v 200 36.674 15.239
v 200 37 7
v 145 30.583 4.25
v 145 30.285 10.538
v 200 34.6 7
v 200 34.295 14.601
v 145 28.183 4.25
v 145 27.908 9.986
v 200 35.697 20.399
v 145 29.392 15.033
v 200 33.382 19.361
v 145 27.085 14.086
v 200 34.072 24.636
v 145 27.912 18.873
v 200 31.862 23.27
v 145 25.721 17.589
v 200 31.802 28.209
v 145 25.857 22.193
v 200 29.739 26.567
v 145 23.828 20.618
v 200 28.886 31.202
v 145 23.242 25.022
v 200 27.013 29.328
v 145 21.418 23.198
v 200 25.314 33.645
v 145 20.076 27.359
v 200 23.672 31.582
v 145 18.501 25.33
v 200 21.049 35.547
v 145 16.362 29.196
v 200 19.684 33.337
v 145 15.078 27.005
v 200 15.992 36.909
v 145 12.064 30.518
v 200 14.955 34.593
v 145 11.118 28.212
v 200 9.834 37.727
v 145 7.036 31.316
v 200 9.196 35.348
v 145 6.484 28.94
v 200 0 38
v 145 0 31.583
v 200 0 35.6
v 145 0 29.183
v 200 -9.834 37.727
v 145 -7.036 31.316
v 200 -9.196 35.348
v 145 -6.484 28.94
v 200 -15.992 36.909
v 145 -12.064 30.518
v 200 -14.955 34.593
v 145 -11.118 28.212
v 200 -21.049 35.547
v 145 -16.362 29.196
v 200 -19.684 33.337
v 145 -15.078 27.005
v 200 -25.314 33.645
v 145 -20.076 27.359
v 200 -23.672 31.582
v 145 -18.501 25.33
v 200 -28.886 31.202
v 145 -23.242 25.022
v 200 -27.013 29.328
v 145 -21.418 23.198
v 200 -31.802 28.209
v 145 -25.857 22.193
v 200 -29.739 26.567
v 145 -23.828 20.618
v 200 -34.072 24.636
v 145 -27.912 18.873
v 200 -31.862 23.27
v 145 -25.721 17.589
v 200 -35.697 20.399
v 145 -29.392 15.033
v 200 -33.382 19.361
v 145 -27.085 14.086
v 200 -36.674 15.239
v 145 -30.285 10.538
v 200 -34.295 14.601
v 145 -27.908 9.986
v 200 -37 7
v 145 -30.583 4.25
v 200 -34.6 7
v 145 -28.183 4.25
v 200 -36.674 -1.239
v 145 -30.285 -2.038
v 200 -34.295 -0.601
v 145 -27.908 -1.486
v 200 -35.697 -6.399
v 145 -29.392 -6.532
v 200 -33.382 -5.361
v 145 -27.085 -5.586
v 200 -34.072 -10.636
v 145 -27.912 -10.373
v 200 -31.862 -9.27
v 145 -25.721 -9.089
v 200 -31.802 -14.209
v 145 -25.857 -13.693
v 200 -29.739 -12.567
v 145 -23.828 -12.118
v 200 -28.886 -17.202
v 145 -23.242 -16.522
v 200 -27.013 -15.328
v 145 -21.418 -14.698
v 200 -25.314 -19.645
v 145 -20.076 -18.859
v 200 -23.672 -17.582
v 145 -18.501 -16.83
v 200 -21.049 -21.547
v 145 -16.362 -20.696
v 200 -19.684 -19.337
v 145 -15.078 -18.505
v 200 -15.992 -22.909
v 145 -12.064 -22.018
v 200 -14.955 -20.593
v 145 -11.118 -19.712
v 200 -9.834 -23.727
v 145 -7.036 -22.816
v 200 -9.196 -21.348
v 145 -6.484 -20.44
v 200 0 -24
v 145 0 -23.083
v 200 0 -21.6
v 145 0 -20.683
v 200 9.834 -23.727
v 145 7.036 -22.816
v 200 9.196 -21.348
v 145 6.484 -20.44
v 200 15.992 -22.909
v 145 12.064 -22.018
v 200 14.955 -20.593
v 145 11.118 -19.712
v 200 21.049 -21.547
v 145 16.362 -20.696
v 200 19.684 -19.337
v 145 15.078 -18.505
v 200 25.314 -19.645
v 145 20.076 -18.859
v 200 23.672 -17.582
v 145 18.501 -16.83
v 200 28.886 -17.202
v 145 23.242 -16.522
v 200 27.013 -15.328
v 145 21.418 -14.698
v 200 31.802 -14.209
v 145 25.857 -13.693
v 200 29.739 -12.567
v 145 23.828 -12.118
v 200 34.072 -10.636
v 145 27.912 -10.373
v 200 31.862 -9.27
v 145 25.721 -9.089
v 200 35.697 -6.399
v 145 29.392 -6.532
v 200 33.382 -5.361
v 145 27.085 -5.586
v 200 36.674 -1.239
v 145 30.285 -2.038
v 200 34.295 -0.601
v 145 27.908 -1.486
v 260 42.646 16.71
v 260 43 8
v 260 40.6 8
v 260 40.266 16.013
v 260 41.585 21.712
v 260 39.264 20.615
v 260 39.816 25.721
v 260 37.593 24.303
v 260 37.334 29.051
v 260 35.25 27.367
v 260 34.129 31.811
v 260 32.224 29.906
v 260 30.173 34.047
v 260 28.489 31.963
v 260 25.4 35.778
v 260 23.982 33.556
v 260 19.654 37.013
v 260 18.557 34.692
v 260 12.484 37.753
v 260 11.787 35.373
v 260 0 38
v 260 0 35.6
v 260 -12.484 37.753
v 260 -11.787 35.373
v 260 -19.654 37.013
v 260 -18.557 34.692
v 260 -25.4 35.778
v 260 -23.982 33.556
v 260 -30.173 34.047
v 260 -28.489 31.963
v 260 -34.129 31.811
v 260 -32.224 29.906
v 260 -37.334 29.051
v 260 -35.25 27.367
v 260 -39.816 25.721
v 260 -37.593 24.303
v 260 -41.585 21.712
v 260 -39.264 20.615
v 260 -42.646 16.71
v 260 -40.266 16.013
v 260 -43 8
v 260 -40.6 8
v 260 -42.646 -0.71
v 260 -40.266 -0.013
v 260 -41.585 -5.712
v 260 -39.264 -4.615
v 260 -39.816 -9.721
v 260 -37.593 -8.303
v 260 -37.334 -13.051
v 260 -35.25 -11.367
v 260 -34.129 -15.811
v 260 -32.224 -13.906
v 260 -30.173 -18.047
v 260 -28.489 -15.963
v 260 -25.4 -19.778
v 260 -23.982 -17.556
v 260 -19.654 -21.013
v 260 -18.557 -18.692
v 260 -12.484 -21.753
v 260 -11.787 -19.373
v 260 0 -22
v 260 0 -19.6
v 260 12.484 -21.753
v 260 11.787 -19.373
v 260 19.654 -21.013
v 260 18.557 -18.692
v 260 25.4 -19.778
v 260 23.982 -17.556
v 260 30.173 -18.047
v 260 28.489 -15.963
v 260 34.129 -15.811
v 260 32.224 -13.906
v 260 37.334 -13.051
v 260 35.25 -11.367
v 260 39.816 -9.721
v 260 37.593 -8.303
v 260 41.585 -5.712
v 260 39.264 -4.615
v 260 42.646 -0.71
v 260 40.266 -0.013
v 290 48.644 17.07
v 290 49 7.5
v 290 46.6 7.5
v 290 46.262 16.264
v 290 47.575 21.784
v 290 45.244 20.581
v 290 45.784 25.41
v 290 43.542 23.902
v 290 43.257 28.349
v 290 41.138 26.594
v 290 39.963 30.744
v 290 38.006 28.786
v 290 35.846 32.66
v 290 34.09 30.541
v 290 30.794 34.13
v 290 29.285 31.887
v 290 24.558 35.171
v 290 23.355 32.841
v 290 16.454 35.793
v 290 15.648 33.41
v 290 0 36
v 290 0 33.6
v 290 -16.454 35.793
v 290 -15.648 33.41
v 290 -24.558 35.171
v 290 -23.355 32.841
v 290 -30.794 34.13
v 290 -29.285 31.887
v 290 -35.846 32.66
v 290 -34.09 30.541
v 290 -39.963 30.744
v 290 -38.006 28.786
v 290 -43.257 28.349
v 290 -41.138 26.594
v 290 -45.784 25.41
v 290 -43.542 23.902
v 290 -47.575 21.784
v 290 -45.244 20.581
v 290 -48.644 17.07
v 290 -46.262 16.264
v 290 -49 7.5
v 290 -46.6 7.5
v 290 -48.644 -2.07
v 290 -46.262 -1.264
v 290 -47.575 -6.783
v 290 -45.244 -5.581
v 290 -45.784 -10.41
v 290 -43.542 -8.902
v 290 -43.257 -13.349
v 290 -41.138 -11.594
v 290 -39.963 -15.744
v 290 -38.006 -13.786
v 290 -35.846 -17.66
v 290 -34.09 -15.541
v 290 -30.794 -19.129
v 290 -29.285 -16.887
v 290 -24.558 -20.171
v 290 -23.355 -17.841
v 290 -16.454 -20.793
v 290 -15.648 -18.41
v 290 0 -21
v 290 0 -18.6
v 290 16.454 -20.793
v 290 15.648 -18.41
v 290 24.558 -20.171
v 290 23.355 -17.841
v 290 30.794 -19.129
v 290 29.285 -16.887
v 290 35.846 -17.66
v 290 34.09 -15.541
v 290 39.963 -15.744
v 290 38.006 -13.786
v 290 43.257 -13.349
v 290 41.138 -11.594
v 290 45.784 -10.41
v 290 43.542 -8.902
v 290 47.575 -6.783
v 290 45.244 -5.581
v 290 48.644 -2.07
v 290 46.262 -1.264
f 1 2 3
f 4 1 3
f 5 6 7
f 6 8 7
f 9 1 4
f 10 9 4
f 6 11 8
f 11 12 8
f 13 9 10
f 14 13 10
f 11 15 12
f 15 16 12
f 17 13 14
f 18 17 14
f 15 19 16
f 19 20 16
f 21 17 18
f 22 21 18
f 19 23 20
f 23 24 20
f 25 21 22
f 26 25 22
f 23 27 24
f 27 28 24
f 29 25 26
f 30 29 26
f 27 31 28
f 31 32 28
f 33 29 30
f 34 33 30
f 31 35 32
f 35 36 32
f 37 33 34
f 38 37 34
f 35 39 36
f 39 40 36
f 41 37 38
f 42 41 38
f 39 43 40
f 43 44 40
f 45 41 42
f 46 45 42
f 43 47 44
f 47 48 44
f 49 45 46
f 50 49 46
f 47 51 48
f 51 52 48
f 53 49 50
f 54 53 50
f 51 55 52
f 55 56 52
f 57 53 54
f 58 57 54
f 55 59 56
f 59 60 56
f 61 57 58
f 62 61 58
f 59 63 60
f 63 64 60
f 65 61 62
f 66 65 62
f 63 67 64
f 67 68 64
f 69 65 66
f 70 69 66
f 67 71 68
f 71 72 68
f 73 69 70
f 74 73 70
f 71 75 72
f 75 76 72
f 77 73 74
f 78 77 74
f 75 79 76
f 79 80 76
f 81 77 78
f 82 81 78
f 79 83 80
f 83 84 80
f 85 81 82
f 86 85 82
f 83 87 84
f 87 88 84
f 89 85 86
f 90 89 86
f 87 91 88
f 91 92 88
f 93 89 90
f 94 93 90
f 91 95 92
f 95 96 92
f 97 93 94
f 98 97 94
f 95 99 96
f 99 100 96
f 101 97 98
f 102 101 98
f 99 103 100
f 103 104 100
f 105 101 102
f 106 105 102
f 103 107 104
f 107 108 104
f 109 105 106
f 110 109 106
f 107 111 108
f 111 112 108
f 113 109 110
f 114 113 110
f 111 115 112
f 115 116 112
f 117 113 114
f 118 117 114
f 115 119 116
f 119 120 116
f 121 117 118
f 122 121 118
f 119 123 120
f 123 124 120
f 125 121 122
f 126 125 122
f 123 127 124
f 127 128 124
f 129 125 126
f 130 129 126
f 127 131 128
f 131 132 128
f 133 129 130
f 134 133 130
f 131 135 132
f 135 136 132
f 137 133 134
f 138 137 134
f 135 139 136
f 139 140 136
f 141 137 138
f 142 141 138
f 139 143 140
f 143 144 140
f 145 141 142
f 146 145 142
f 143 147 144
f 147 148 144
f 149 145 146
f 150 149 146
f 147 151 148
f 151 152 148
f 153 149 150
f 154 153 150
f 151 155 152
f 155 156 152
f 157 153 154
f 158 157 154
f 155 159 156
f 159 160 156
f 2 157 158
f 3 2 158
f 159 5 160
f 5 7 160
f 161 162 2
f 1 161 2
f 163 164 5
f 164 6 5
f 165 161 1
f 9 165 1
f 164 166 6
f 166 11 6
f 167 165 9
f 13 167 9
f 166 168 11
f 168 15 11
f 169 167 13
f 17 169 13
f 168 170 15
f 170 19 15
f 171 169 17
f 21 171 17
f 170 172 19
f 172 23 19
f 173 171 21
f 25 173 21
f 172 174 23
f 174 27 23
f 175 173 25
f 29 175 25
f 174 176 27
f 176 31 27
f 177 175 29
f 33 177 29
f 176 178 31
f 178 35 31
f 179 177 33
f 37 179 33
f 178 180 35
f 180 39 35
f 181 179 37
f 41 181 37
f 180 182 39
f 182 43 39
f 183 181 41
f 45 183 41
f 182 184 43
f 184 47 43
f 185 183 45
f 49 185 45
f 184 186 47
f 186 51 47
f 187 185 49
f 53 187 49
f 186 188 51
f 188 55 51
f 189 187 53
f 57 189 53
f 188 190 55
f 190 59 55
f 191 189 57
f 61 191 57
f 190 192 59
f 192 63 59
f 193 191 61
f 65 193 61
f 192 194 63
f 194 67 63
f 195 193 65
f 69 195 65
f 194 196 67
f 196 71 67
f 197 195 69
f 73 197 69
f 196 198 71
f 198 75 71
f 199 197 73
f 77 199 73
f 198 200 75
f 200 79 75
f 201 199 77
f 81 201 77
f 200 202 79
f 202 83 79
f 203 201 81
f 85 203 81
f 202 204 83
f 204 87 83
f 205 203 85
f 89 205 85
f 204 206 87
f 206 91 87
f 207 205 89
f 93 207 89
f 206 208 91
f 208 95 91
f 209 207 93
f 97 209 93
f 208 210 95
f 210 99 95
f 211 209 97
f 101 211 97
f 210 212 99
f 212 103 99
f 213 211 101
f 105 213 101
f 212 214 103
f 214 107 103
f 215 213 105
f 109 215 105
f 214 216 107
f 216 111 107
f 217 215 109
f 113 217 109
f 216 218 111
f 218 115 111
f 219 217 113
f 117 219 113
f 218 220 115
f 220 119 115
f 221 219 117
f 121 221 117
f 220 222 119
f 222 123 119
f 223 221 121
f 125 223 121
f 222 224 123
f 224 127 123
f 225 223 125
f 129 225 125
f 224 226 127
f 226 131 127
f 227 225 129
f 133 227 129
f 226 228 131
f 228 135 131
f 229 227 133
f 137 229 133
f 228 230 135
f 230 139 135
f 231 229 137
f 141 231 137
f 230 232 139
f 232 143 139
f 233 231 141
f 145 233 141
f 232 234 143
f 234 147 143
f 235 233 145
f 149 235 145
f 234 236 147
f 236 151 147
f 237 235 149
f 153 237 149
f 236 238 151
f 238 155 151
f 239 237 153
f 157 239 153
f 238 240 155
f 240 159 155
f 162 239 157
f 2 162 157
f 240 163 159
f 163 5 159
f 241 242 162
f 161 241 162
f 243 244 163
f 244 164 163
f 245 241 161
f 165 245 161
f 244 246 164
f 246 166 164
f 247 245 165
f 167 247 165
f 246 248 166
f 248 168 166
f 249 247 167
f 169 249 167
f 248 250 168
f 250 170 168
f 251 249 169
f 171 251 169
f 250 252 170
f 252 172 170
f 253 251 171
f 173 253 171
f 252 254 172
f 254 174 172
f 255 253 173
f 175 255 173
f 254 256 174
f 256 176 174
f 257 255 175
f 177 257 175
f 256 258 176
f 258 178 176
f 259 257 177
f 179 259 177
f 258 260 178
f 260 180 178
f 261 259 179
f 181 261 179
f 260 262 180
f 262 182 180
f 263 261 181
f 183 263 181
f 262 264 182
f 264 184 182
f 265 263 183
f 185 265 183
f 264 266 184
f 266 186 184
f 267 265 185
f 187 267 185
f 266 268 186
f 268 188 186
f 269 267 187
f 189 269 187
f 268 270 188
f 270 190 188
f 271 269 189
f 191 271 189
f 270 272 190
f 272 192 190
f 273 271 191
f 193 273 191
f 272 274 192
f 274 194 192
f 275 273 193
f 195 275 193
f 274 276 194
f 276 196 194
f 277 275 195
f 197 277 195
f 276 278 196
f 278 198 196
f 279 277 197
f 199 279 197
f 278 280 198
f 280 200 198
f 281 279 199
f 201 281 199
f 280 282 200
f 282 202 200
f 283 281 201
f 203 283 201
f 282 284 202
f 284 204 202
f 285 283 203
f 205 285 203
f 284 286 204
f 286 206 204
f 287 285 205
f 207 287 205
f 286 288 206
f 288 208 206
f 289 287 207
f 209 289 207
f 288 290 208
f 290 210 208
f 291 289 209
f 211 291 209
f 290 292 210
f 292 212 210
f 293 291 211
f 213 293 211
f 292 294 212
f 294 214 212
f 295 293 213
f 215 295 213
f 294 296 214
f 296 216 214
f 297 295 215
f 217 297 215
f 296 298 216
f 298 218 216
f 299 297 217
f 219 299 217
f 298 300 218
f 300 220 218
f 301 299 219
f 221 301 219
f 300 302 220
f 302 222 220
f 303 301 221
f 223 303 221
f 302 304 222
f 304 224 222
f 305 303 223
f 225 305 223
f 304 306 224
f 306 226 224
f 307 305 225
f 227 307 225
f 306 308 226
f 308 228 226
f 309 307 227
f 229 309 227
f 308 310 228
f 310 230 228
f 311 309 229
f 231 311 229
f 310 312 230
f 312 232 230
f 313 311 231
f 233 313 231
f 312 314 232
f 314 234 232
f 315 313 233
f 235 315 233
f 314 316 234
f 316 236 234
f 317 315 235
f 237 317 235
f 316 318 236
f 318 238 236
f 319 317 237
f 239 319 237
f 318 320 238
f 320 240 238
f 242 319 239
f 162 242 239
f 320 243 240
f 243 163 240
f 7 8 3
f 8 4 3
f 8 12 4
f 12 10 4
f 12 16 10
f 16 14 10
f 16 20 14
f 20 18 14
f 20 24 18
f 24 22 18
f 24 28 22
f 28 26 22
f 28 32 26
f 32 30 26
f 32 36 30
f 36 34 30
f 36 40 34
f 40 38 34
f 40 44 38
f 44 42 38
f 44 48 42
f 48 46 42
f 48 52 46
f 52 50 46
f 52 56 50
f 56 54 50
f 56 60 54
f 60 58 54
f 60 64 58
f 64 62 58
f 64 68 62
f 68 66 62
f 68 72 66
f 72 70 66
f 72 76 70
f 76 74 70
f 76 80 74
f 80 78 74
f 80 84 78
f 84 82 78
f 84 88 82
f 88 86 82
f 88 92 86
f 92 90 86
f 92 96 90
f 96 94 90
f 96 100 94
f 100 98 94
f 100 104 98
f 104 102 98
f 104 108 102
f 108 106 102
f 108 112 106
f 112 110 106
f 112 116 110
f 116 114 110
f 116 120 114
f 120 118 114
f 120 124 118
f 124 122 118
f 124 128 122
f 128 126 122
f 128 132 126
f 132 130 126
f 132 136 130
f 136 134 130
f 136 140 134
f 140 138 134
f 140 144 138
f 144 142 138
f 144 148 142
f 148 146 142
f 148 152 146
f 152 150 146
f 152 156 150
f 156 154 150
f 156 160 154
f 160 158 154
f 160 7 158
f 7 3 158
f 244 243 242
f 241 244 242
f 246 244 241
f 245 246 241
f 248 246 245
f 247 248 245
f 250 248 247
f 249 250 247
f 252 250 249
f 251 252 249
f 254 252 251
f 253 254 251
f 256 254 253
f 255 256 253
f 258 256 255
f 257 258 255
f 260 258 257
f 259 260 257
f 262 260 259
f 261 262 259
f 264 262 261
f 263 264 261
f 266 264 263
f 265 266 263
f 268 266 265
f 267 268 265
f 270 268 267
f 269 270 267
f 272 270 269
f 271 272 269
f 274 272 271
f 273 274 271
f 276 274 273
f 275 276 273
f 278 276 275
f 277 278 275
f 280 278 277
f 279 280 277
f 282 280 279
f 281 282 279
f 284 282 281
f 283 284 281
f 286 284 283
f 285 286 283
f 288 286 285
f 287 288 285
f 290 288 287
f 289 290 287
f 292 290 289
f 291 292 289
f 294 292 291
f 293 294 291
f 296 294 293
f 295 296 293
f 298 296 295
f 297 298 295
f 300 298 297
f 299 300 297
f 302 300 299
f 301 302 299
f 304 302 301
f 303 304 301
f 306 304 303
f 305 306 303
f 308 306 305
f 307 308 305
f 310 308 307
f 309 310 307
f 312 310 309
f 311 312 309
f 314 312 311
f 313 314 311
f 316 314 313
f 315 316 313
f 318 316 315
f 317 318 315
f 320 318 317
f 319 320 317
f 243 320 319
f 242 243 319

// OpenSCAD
polyhedron(points=[[145.0, 30.583333, 4.25], [145.0, 30.284707, 10.538399], [145.0, 29.391551, 15.032469], [145.0, 27.911714, 18.873336], [145.0, 25.85711, 22.193019], [145.0, 23.241546, 25.021736], [145.0, 20.076488, 27.359352], [145.0, 16.362087, 29.195619], [145.0, 12.064531, 30.518198], [145.0, 7.036105, 31.316441], [145.0, 0.0, 31.583333], [145.0, -7.036105, 31.316441], [145.0, -12.064531, 30.518198], [145.0, -16.362087, 29.195619], [145.0, -20.076488, 27.359352], [145.0, -23.241546, 25.021736], [145.0, -25.85711, 22.193019], [145.0, -27.911714, 18.873336], [145.0, -29.391551, 15.032469], [145.0, -30.284707, 10.538399], [145.0, -30.583333, 4.25], [145.0, -30.284707, -2.038399], [145.0, -29.391551, -6.532469], [145.0, -27.911714, -10.373336], [145.0, -25.85711, -13.693019], [145.0, -23.241546, -16.521736], [145.0, -20.076488, -18.859352], [145.0, -16.362087, -20.695619], [145.0, -12.064531, -22.018198], [145.0, -7.036105, -22.816441], [145.0, -0.0, -23.083333], [145.0, 7.036105, -22.816441], [145.0, 12.064531, -22.018198], [145.0, 16.362087, -20.695619], [145.0, 20.076488, -18.859352], [145.0, 23.241546, -16.521736], [145.0, 25.85711, -13.693019], [145.0, 27.911714, -10.373336], [145.0, 29.391551, -6.532469], [145.0, 30.284707, -2.038399], [145.0, 28.183333, 4.25], [145.0, 27.908141, 9.986247], [145.0, 27.085075, 14.085716], [145.0, 25.721367, 17.589336], [145.0, 23.827996, 20.617534], [145.0, 21.417686, 23.197876], [145.0, 18.501003, 25.330238], [145.0, 15.078086, 27.005272], [145.0, 11.117778, 28.211722], [145.0, 6.483953, 28.939875], [145.0, 0.0, 29.183333], [145.0, -6.483953, 28.939875], [145.0, -11.117778, 28.211722], [145.0, -15.078086, 27.005272], [145.0, -18.501003, 25.330238], [145.0, -21.417686, 23.197876], [145.0, -23.827996, 20.617534], [145.0, -25.721367, 17.589336], [145.0, -27.085075, 14.085716], [145.0, -27.908141, 9.986247], [145.0, -28.183333, 4.25], [145.0, -27.908141, -1.486247], [145.0, -27.085075, -5.585716], [145.0, -25.721367, -9.089336], [145.0, -23.827996, -12.117534], [145.0, -21.417686, -14.697876], [145.0, -18.501003, -16.830238], [145.0, -15.078086, -18.505272], [145.0, -11.117778, -19.711722], [145.0, -6.483953, -20.439875], [145.0, -0.0, -20.683333], [145.0, 6.483953, -20.439875], [145.0, 11.117778, -19.711722], [145.0, 15.078086, -18.505272], [145.0, 18.501003, -16.830238], [145.0, 21.417686, -14.697876], [145.0, 23.827996, -12.117534], [145.0, 25.721367, -9.089336], [145.0, 27.085075, -5.585716], [145.0, 27.908141, -1.486247], [200.0, 37.0, 7.0], [200.0, 36.674045, 15.239197], [200.0, 35.697254, 20.398722], [200.0, 34.072371, 24.635797], [200.0, 31.802201, 28.208888], [200.0, 28.88624, 31.201985], [200.0, 25.313834, 33.645088], [200.0, 21.049177, 35.547122], [200.0, 15.992023, 36.90851], [200.0, 9.83388, 37.726903], [200.0, 0.0, 38.0], [200.0, -9.83388, 37.726903], [200.0, -15.992023, 36.90851], [200.0, -21.049177, 35.547122], [200.0, -25.313834, 33.645088], [200.0, -28.88624, 31.201985], [200.0, -31.802201, 28.208888], [200.0, -34.072371, 24.635797], [200.0, -35.697254, 20.398722], [200.0, -36.674045, 15.239197], [200.0, -37.0, 7.0], [200.0, -36.674045, -1.239197], [200.0, -35.697254, -6.398722], [200.0, -34.072371, -10.635797], [200.0, -31.802201, -14.208888], [200.0, -28.88624, -17.201985], [200.0, -25.313834, -19.645088], [200.0, -21.049177, -21.547122], [200.0, -15.992023, -22.90851], [200.0, -9.83388, -23.726903], [200.0, -0.0, -24.0], [200.0, 9.83388, -23.726903], [200.0, 15.992023, -22.90851], [200.0, 21.049177, -21.547122], [200.0, 25.313834, -19.645088], [200.0, 28.88624, -17.201985], [200.0, 31.802201, -14.208888], [200.0, 34.072371, -10.635797], [200.0, 35.697254, -6.398722], [200.0, 36.674045, -1.239197], [200.0, 34.6, 7.0], [200.0, 34.295188, 14.601323], [200.0, 33.381757, 19.361402], [200.0, 31.862271, 23.270445], [200.0, 29.739356, 26.56691], [200.0, 27.012538, 29.328283], [200.0, 23.671856, 31.582242], [200.0, 19.683825, 33.337022], [200.0, 14.954703, 34.593013], [200.0, 9.196007, 35.348046], [200.0, 0.0, 35.6], [200.0, -9.196007, 35.348046], [200.0, -14.954703, 34.593013], [200.0, -19.683825, 33.337022], [200.0, -23.671856, 31.582242], [200.0, -27.012538, 29.328283], [200.0, -29.739356, 26.56691], [200.0, -31.862271, 23.270445], [200.0, -33.381757, 19.361402], [200.0, -34.295188, 14.601323], [200.0, -34.6, 7.0], [200.0, -34.295188, -0.601323], [200.0, -33.381757, -5.361402], [200.0, -31.862271, -9.270445], [200.0, -29.739356, -12.56691], [200.0, -27.012538, -15.328283], [200.0, -23.671856, -17.582242], [200.0, -19.683825, -19.337022], [200.0, -14.954703, -20.593013], [200.0, -9.196007, -21.348046], [200.0, -0.0, -21.6], [200.0, 9.196007, -21.348046], [200.0, 14.954703, -20.593013], [200.0, 19.683825, -19.337022], [200.0, 23.671856, -17.582242], [200.0, 27.012538, -15.328283], [200.0, 29.739356, -12.56691], [200.0, 31.862271, -9.270445], [200.0, 33.381757, -5.361402], [200.0, 34.295188, -0.601323], [260.0, 43.0, 8.0], [260.0, 42.646338, 16.709827], [260.0, 41.585252, 21.712274], [260.0, 39.815824, 25.7209], [260.0, 37.334203, 29.050724], [260.0, 34.129123, 31.811016], [260.0, 30.172705, 34.047118], [260.0, 25.399956, 35.778482], [260.0, 19.65426, 37.012967], [260.0, 12.484086, 37.753259], [260.0, 0.0, 38.0], [260.0, -12.484086, 37.753259], [260.0, -19.65426, 37.012967], [260.0, -25.399956, 35.778482], [260.0, -30.172705, 34.047118], [260.0, -34.129123, 31.811016], [260.0, -37.334203, 29.050724], [260.0, -39.815824, 25.7209], [260.0, -41.585252, 21.712274], [260.0, -42.646338, 16.709827], [260.0, -43.0, 8.0], [260.0, -42.646338, -0.709827], [260.0, -41.585252, -5.712274], [260.0, -39.815824, -9.7209], [260.0, -37.334203, -13.050724], [260.0, -34.129123, -15.811016], [260.0, -30.172705, -18.047118], [260.0, -25.399956, -19.778482], [260.0, -19.65426, -21.012967], [260.0, -12.484086, -21.753259], [260.0, -0.0, -22.0], [260.0, 12.484086, -21.753259], [260.0, 19.65426, -21.012967], [260.0, 25.399956, -19.778482], [260.0, 30.172705, -18.047118], [260.0, 34.129123, -15.811016], [260.0, 37.334203, -13.050724], [260.0, 39.815824, -9.7209], [260.0, 41.585252, -5.712274], [260.0, 42.646338, -0.709827], [260.0, 40.6, 8.0], [260.0, 40.266077, 16.013041], [260.0, 39.264215, 20.615293], [260.0, 37.593546, 24.303228], [260.0, 35.250434, 27.366666], [260.0, 32.224241, 29.906135], [260.0, 28.488647, 31.963349], [260.0, 23.982284, 33.556204], [260.0, 18.557278, 34.691929], [260.0, 11.7873, 35.372998], [260.0, 0.0, 35.6], [260.0, -11.7873, 35.372998], [260.0, -18.557278, 34.691929], [260.0, -23.982284, 33.556204], [260.0, -28.488647, 31.963349], [260.0, -32.224241, 29.906135], [260.0, -35.250434, 27.366666], [260.0, -37.593546, 24.303228], [260.0, -39.264215, 20.615293], [260.0, -40.266077, 16.013041], [260.0, -40.6, 8.0], [260.0, -40.266077, -0.013041], [260.0, -39.264215, -4.615293], [260.0, -37.593546, -8.303228], [260.0, -35.250434, -11.366666], [260.0, -32.224241, -13.906135], [260.0, -28.488647, -15.963349], [260.0, -23.982284, -17.556204], [260.0, -18.557278, -18.691929], [260.0, -11.7873, -19.372998], [260.0, -0.0, -19.6], [260.0, 11.7873, -19.372998], [260.0, 18.557278, -18.691929], [260.0, 23.982284, -17.556204], [260.0, 28.488647, -15.963349], [260.0, 32.224241, -13.906135], [260.0, 35.250434, -11.366666], [260.0, 37.593546, -8.303228], [260.0, 39.264215, -4.615293], [260.0, 40.266077, -0.013041], [290.0, 49.0, 7.5], [290.0, 48.64423, 17.070239], [290.0, 47.574723, 21.783495], [290.0, 45.784054, 25.410498], [290.0, 43.256713, 28.349284], [290.0, 39.962978, 30.743773], [290.0, 35.846137, 32.659517], [290.0, 30.793488, 34.129501], [290.0, 24.557588, 35.171013], [290.0, 16.454094, 35.793072], [290.0, 0.0, 36.0], [290.0, -16.454094, 35.793072], [290.0, -24.557588, 35.171013], [290.0, -30.793488, 34.129501], [290.0, -35.846137, 32.659517], [290.0, -39.962978, 30.743773], [290.0, -43.256713, 28.349284], [290.0, -45.784054, 25.410498], [290.0, -47.574723, 21.783495], [290.0, -48.64423, 17.070239], [290.0, -49.0, 7.5], [290.0, -48.64423, -2.070239], [290.0, -47.574723, -6.783495], [290.0, -45.784054, -10.410498], [290.0, -43.256713, -13.349284], [290.0, -39.962978, -15.743773], [290.0, -35.846137, -17.659517], [290.0, -30.793488, -19.129501], [290.0, -24.557588, -20.171013], [290.0, -16.454094, -20.793072], [290.0, -0.0, -21.0], [290.0, 16.454094, -20.793072], [290.0, 24.557588, -20.171013], [290.0, 30.793488, -19.129501], [290.0, 35.846137, -17.659517], [290.0, 39.962978, -15.743773], [290.0, 43.256713, -13.349284], [290.0, 45.784054, -10.410498], [290.0, 47.574723, -6.783495], [290.0, 48.64423, -2.070239], [290.0, 46.6, 7.5], [290.0, 46.261655, 16.264324], [290.0, 45.244533, 20.580674], [290.0, 43.54157, 23.902246], [290.0, 41.138017, 26.593555], [290.0, 38.005608, 28.786403], [290.0, 34.090408, 30.540821], [290.0, 29.285235, 31.887017], [290.0, 23.354767, 32.840822], [290.0, 15.64818, 33.410498], [290.0, 0.0, 33.6], [290.0, -15.64818, 33.410498], [290.0, -23.354767, 32.840822], [290.0, -29.285235, 31.887017], [290.0, -34.090408, 30.540821], [290.0, -38.005608, 28.786403], [290.0, -41.138017, 26.593555], [290.0, -43.54157, 23.902246], [290.0, -45.244533, 20.580674], [290.0, -46.261655, 16.264324], [290.0, -46.6, 7.5], [290.0, -46.261655, -1.264324], [290.0, -45.244533, -5.580674], [290.0, -43.54157, -8.902246], [290.0, -41.138017, -11.593555], [290.0, -38.005608, -13.786403], [290.0, -34.090408, -15.540821], [290.0, -29.285235, -16.887017], [290.0, -23.354767, -17.840822], [290.0, -15.64818, -18.410498], [290.0, -0.0, -18.6], [290.0, 15.64818, -18.410498], [290.0, 23.354767, -17.840822], [290.0, 29.285235, -16.887017], [290.0, 34.090408, -15.540821], [290.0, 38.005608, -13.786403], [290.0, 41.138017, -11.593555], [290.0, 43.54157, -8.902246], [290.0, 45.244533, -5.580674], [290.0, 46.261655, -1.264324]], faces=[[0, 80, 81], [0, 81, 1], [40, 121, 120], [40, 41, 121], [1, 81, 82], [1, 82, 2], [41, 122, 121], [41, 42, 122], [2, 82, 83], [2, 83, 3], [42, 123, 122], [42, 43, 123], [3, 83, 84], [3, 84, 4], [43, 124, 123], [43, 44, 124], [4, 84, 85], [4, 85, 5], [44, 125, 124], [44, 45, 125], [5, 85, 86], [5, 86, 6], [45, 126, 125], [45, 46, 126], [6, 86, 87], [6, 87, 7], [46, 127, 126], [46, 47, 127], [7, 87, 88], [7, 88, 8], [47, 128, 127], [47, 48, 128], [8, 88, 89], [8, 89, 9], [48, 129, 128], [48, 49, 129], [9, 89, 90], [9, 90, 10], [49, 130, 129], [49, 50, 130], [10, 90, 91], [10, 91, 11], [50, 131, 130], [50, 51, 131], [11, 91, 92], [11, 92, 12], [51, 132, 131], [51, 52, 132], [12, 92, 93], [12, 93, 13], [52, 133, 132], [52, 53, 133], [13, 93, 94], [13, 94, 14], [53, 134, 133], [53, 54, 134], [14, 94, 95], [14, 95, 15], [54, 135, 134], [54, 55, 135], [15, 95, 96], [15, 96, 16], [55, 136, 135], [55, 56, 136], [16, 96, 97], [16, 97, 17], [56, 137, 136], [56, 57, 137], [17, 97, 98], [17, 98, 18], [57, 138, 137], [57, 58, 138], [18, 98, 99], [18, 99, 19], [58, 139, 138], [58, 59, 139], [19, 99, 100], [19, 100, 20], [59, 140, 139], [59, 60, 140], [20, 100, 101], [20, 101, 21], [60, 141, 140], [60, 61, 141], [21, 101, 102], [21, 102, 22], [61, 142, 141], [61, 62, 142], [22, 102, 103], [22, 103, 23], [62, 143, 142], [62, 63, 143], [23, 103, 104], [23, 104, 24], [63, 144, 143], [63, 64, 144], [24, 104, 105], [24, 105, 25], [64, 145, 144], [64, 65, 145], [25, 105, 106], [25, 106, 26], [65, 146, 145], [65, 66, 146], [26, 106, 107], [26, 107, 27], [66, 147, 146], [66, 67, 147], [27, 107, 108], [27, 108, 28], [67, 148, 147], [67, 68, 148], [28, 108, 109], [28, 109, 29], [68, 149, 148], [68, 69, 149], [29, 109, 110], [29, 110, 30], [69, 150, 149], [69, 70, 150], [30, 110, 111], [30, 111, 31], [70, 151, 150], [70, 71, 151], [31, 111, 112], [31, 112, 32], [71, 152, 151], [71, 72, 152], [32, 112, 113], [32, 113, 33], [72, 153, 152], [72, 73, 153], [33, 113, 114], [33, 114, 34], [73, 154, 153], [73, 74, 154], [34, 114, 115], [34, 115, 35], [74, 155, 154], [74, 75, 155], [35, 115, 116], [35, 116, 36], [75, 156, 155], [75, 76, 156], [36, 116, 117], [36, 117, 37], [76, 157, 156], [76, 77, 157], [37, 117, 118], [37, 118, 38], [77, 158, 157], [77, 78, 158], [38, 118, 119], [38, 119, 39], [78, 159, 158], [78, 79, 159], [39, 119, 80], [39, 80, 0], [79, 120, 159], [79, 40, 120], [80, 160, 161], [80, 161, 81], [120, 201, 200], [120, 121, 201], [81, 161, 162], [81, 162, 82], [121, 202, 201], [121, 122, 202], [82, 162, 163], [82, 163, 83], [122, 203, 202], [122, 123, 203], [83, 163, 164], [83, 164, 84], [123, 204, 203], [123, 124, 204], [84, 164, 165], [84, 165, 85], [124, 205, 204], [124, 125, 205], [85, 165, 166], [85, 166, 86], [125, 206, 205], [125, 126, 206], [86, 166, 167], [86, 167, 87], [126, 207, 206], [126, 127, 207], [87, 167, 168], [87, 168, 88], [127, 208, 207], [127, 128, 208], [88, 168, 169], [88, 169, 89], [128, 209, 208], [128, 129, 209], [89, 169, 170], [89, 170, 90], [129, 210, 209], [129, 130, 210], [90, 170, 171], [90, 171, 91], [130, 211, 210], [130, 131, 211], [91, 171, 172], [91, 172, 92], [131, 212, 211], [131, 132, 212], [92, 172, 173], [92, 173, 93], [132, 213, 212], [132, 133, 213], [93, 173, 174], [93, 174, 94], [133, 214, 213], [133, 134, 214], [94, 174, 175], [94, 175, 95], [134, 215, 214], [134, 135, 215], [95, 175, 176], [95, 176, 96], [135, 216, 215], [135, 136, 216], [96, 176, 177], [96, 177, 97], [136, 217, 216], [136, 137, 217], [97, 177, 178], [97, 178, 98], [137, 218, 217], [137, 138, 218], [98, 178, 179], [98, 179, 99], [138, 219, 218], [138, 139, 219], [99, 179, 180], [99, 180, 100], [139, 220, 219], [139, 140, 220], [100, 180, 181], [100, 181, 101], [140, 221, 220], [140, 141, 221], [101, 181, 182], [101, 182, 102], [141, 222, 221], [141, 142, 222], [102, 182, 183], [102, 183, 103], [142, 223, 222], [142, 143, 223], [103, 183, 184], [103, 184, 104], [143, 224, 223], [143, 144, 224], [104, 184, 185], [104, 185, 105], [144, 225, 224], [144, 145, 225], [105, 185, 186], [105, 186, 106], [145, 226, 225], [145, 146, 226], [106, 186, 187], [106, 187, 107], [146, 227, 226], [146, 147, 227], [107, 187, 188], [107, 188, 108], [147, 228, 227], [147, 148, 228], [108, 188, 189], [108, 189, 109], [148, 229, 228], [148, 149, 229], [109, 189, 190], [109, 190, 110], [149, 230, 229], [149, 150, 230], [110, 190, 191], [110, 191, 111], [150, 231, 230], [150, 151, 231], [111, 191, 192], [111, 192, 112], [151, 232, 231], [151, 152, 232], [112, 192, 193], [112, 193, 113], [152, 233, 232], [152, 153, 233], [113, 193, 194], [113, 194, 114], [153, 234, 233], [153, 154, 234], [114, 194, 195], [114, 195, 115], [154, 235, 234], [154, 155, 235], [115, 195, 196], [115, 196, 116], [155, 236, 235], [155, 156, 236], [116, 196, 197], [116, 197, 117], [156, 237, 236], [156, 157, 237], [117, 197, 198], [117, 198, 118], [157, 238, 237], [157, 158, 238], [118, 198, 199], [118, 199, 119], [158, 239, 238], [158, 159, 239], [119, 199, 160], [119, 160, 80], [159, 200, 239], [159, 120, 200], [160, 240, 241], [160, 241, 161], [200, 281, 280], [200, 201, 281], [161, 241, 242], [161, 242, 162], [201, 282, 281], [201, 202, 282], [162, 242, 243], [162, 243, 163], [202, 283, 282], [202, 203, 283], [163, 243, 244], [163, 244, 164], [203, 284, 283], [203, 204, 284], [164, 244, 245], [164, 245, 165], [204, 285, 284], [204, 205, 285], [165, 245, 246], [165, 246, 166], [205, 286, 285], [205, 206, 286], [166, 246, 247], [166, 247, 167], [206, 287, 286], [206, 207, 287], [167, 247, 248], [167, 248, 168], [207, 288, 287], [207, 208, 288], [168, 248, 249], [168, 249, 169], [208, 289, 288], [208, 209, 289], [169, 249, 250], [169, 250, 170], [209, 290, 289], [209, 210, 290], [170, 250, 251], [170, 251, 171], [210, 291, 290], [210, 211, 291], [171, 251, 252], [171, 252, 172], [211, 292, 291], [211, 212, 292], [172, 252, 253], [172, 253, 173], [212, 293, 292], [212, 213, 293], [173, 253, 254], [173, 254, 174], [213, 294, 293], [213, 214, 294], [174, 254, 255], [174, 255, 175], [214, 295, 294], [214, 215, 295], [175, 255, 256], [175, 256, 176], [215, 296, 295], [215, 216, 296], [176, 256, 257], [176, 257, 177], [216, 297, 296], [216, 217, 297], [177, 257, 258], [177, 258, 178], [217, 298, 297], [217, 218, 298], [178, 258, 259], [178, 259, 179], [218, 299, 298], [218, 219, 299], [179, 259, 260], [179, 260, 180], [219, 300, 299], [219, 220, 300], [180, 260, 261], [180, 261, 181], [220, 301, 300], [220, 221, 301], [181, 261, 262], [181, 262, 182], [221, 302, 301], [221, 222, 302], [182, 262, 263], [182, 263, 183], [222, 303, 302], [222, 223, 303], [183, 263, 264], [183, 264, 184], [223, 304, 303], [223, 224, 304], [184, 264, 265], [184, 265, 185], [224, 305, 304], [224, 225, 305], [185, 265, 266], [185, 266, 186], [225, 306, 305], [225, 226, 306], [186, 266, 267], [186, 267, 187], [226, 307, 306], [226, 227, 307], [187, 267, 268], [187, 268, 188], [227, 308, 307], [227, 228, 308], [188, 268, 269], [188, 269, 189], [228, 309, 308], [228, 229, 309], [189, 269, 270], [189, 270, 190], [229, 310, 309], [229, 230, 310], [190, 270, 271], [190, 271, 191], [230, 311, 310], [230, 231, 311], [191, 271, 272], [191, 272, 192], [231, 312, 311], [231, 232, 312], [192, 272, 273], [192, 273, 193], [232, 313, 312], [232, 233, 313], [193, 273, 274], [193, 274, 194], [233, 314, 313], [233, 234, 314], [194, 274, 275], [194, 275, 195], [234, 315, 314], [234, 235, 315], [195, 275, 276], [195, 276, 196], [235, 316, 315], [235, 236, 316], [196, 276, 277], [196, 277, 197], [236, 317, 316], [236, 237, 317], [197, 277, 278], [197, 278, 198], [237, 318, 317], [237, 238, 318], [198, 278, 279], [198, 279, 199], [238, 319, 318], [238, 239, 319], [199, 279, 240], [199, 240, 160], [239, 280, 319], [239, 200, 280], [0, 41, 40], [0, 1, 41], [1, 42, 41], [1, 2, 42], [2, 43, 42], [2, 3, 43], [3, 44, 43], [3, 4, 44], [4, 45, 44], [4, 5, 45], [5, 46, 45], [5, 6, 46], [6, 47, 46], [6, 7, 47], [7, 48, 47], [7, 8, 48], [8, 49, 48], [8, 9, 49], [9, 50, 49], [9, 10, 50], [10, 51, 50], [10, 11, 51], [11, 52, 51], [11, 12, 52], [12, 53, 52], [12, 13, 53], [13, 54, 53], [13, 14, 54], [14, 55, 54], [14, 15, 55], [15, 56, 55], [15, 16, 56], [16, 57, 56], [16, 17, 57], [17, 58, 57], [17, 18, 58], [18, 59, 58], [18, 19, 59], [19, 60, 59], [19, 20, 60], [20, 61, 60], [20, 21, 61], [21, 62, 61], [21, 22, 62], [22, 63, 62], [22, 23, 63], [23, 64, 63], [23, 24, 64], [24, 65, 64], [24, 25, 65], [25, 66, 65], [25, 26, 66], [26, 67, 66], [26, 27, 67], [27, 68, 67], [27, 28, 68], [28, 69, 68], [28, 29, 69], [29, 70, 69], [29, 30, 70], [30, 71, 70], [30, 31, 71], [31, 72, 71], [31, 32, 72], [32, 73, 72], [32, 33, 73], [33, 74, 73], [33, 34, 74], [34, 75, 74], [34, 35, 75], [35, 76, 75], [35, 36, 76], [36, 77, 76], [36, 37, 77], [37, 78, 77], [37, 38, 78], [38, 79, 78], [38, 39, 79], [39, 40, 79], [39, 0, 40], [240, 280, 281], [240, 281, 241], [241, 281, 282], [241, 282, 242], [242, 282, 283], [242, 283, 243], [243, 283, 284], [243, 284, 244], [244, 284, 285], [244, 285, 245], [245, 285, 286], [245, 286, 246], [246, 286, 287], [246, 287, 247], [247, 287, 288], [247, 288, 248], [248, 288, 289], [248, 289, 249], [249, 289, 290], [249, 290, 250], [250, 290, 291], [250, 291, 251], [251, 291, 292], [251, 292, 252], [252, 292, 293], [252, 293, 253], [253, 293, 294], [253, 294, 254], [254, 294, 295], [254, 295, 255], [255, 295, 296], [255, 296, 256], [256, 296, 297], [256, 297, 257], [257, 297, 298], [257, 298, 258], [258, 298, 299], [258, 299, 259], [259, 299, 300], [259, 300, 260], [260, 300, 301], [260, 301, 261], [261, 301, 302], [261, 302, 262], [262, 302, 303], [262, 303, 263], [263, 303, 304], [263, 304, 264], [264, 304, 305], [264, 305, 265], [265, 305, 306], [265, 306, 266], [266, 306, 307], [266, 307, 267], [267, 307, 308], [267, 308, 268], [268, 308, 309], [268, 309, 269], [269, 309, 310], [269, 310, 270], [270, 310, 311], [270, 311, 271], [271, 311, 312], [271, 312, 272], [272, 312, 313], [272, 313, 273], [273, 313, 314], [273, 314, 274], [274, 314, 315], [274, 315, 275], [275, 315, 316], [275, 316, 276], [276, 316, 317], [276, 317, 277], [277, 317, 318], [277, 318, 278], [278, 318, 319], [278, 319, 279], [279, 319, 280], [279, 280, 240]], convexity=30);
